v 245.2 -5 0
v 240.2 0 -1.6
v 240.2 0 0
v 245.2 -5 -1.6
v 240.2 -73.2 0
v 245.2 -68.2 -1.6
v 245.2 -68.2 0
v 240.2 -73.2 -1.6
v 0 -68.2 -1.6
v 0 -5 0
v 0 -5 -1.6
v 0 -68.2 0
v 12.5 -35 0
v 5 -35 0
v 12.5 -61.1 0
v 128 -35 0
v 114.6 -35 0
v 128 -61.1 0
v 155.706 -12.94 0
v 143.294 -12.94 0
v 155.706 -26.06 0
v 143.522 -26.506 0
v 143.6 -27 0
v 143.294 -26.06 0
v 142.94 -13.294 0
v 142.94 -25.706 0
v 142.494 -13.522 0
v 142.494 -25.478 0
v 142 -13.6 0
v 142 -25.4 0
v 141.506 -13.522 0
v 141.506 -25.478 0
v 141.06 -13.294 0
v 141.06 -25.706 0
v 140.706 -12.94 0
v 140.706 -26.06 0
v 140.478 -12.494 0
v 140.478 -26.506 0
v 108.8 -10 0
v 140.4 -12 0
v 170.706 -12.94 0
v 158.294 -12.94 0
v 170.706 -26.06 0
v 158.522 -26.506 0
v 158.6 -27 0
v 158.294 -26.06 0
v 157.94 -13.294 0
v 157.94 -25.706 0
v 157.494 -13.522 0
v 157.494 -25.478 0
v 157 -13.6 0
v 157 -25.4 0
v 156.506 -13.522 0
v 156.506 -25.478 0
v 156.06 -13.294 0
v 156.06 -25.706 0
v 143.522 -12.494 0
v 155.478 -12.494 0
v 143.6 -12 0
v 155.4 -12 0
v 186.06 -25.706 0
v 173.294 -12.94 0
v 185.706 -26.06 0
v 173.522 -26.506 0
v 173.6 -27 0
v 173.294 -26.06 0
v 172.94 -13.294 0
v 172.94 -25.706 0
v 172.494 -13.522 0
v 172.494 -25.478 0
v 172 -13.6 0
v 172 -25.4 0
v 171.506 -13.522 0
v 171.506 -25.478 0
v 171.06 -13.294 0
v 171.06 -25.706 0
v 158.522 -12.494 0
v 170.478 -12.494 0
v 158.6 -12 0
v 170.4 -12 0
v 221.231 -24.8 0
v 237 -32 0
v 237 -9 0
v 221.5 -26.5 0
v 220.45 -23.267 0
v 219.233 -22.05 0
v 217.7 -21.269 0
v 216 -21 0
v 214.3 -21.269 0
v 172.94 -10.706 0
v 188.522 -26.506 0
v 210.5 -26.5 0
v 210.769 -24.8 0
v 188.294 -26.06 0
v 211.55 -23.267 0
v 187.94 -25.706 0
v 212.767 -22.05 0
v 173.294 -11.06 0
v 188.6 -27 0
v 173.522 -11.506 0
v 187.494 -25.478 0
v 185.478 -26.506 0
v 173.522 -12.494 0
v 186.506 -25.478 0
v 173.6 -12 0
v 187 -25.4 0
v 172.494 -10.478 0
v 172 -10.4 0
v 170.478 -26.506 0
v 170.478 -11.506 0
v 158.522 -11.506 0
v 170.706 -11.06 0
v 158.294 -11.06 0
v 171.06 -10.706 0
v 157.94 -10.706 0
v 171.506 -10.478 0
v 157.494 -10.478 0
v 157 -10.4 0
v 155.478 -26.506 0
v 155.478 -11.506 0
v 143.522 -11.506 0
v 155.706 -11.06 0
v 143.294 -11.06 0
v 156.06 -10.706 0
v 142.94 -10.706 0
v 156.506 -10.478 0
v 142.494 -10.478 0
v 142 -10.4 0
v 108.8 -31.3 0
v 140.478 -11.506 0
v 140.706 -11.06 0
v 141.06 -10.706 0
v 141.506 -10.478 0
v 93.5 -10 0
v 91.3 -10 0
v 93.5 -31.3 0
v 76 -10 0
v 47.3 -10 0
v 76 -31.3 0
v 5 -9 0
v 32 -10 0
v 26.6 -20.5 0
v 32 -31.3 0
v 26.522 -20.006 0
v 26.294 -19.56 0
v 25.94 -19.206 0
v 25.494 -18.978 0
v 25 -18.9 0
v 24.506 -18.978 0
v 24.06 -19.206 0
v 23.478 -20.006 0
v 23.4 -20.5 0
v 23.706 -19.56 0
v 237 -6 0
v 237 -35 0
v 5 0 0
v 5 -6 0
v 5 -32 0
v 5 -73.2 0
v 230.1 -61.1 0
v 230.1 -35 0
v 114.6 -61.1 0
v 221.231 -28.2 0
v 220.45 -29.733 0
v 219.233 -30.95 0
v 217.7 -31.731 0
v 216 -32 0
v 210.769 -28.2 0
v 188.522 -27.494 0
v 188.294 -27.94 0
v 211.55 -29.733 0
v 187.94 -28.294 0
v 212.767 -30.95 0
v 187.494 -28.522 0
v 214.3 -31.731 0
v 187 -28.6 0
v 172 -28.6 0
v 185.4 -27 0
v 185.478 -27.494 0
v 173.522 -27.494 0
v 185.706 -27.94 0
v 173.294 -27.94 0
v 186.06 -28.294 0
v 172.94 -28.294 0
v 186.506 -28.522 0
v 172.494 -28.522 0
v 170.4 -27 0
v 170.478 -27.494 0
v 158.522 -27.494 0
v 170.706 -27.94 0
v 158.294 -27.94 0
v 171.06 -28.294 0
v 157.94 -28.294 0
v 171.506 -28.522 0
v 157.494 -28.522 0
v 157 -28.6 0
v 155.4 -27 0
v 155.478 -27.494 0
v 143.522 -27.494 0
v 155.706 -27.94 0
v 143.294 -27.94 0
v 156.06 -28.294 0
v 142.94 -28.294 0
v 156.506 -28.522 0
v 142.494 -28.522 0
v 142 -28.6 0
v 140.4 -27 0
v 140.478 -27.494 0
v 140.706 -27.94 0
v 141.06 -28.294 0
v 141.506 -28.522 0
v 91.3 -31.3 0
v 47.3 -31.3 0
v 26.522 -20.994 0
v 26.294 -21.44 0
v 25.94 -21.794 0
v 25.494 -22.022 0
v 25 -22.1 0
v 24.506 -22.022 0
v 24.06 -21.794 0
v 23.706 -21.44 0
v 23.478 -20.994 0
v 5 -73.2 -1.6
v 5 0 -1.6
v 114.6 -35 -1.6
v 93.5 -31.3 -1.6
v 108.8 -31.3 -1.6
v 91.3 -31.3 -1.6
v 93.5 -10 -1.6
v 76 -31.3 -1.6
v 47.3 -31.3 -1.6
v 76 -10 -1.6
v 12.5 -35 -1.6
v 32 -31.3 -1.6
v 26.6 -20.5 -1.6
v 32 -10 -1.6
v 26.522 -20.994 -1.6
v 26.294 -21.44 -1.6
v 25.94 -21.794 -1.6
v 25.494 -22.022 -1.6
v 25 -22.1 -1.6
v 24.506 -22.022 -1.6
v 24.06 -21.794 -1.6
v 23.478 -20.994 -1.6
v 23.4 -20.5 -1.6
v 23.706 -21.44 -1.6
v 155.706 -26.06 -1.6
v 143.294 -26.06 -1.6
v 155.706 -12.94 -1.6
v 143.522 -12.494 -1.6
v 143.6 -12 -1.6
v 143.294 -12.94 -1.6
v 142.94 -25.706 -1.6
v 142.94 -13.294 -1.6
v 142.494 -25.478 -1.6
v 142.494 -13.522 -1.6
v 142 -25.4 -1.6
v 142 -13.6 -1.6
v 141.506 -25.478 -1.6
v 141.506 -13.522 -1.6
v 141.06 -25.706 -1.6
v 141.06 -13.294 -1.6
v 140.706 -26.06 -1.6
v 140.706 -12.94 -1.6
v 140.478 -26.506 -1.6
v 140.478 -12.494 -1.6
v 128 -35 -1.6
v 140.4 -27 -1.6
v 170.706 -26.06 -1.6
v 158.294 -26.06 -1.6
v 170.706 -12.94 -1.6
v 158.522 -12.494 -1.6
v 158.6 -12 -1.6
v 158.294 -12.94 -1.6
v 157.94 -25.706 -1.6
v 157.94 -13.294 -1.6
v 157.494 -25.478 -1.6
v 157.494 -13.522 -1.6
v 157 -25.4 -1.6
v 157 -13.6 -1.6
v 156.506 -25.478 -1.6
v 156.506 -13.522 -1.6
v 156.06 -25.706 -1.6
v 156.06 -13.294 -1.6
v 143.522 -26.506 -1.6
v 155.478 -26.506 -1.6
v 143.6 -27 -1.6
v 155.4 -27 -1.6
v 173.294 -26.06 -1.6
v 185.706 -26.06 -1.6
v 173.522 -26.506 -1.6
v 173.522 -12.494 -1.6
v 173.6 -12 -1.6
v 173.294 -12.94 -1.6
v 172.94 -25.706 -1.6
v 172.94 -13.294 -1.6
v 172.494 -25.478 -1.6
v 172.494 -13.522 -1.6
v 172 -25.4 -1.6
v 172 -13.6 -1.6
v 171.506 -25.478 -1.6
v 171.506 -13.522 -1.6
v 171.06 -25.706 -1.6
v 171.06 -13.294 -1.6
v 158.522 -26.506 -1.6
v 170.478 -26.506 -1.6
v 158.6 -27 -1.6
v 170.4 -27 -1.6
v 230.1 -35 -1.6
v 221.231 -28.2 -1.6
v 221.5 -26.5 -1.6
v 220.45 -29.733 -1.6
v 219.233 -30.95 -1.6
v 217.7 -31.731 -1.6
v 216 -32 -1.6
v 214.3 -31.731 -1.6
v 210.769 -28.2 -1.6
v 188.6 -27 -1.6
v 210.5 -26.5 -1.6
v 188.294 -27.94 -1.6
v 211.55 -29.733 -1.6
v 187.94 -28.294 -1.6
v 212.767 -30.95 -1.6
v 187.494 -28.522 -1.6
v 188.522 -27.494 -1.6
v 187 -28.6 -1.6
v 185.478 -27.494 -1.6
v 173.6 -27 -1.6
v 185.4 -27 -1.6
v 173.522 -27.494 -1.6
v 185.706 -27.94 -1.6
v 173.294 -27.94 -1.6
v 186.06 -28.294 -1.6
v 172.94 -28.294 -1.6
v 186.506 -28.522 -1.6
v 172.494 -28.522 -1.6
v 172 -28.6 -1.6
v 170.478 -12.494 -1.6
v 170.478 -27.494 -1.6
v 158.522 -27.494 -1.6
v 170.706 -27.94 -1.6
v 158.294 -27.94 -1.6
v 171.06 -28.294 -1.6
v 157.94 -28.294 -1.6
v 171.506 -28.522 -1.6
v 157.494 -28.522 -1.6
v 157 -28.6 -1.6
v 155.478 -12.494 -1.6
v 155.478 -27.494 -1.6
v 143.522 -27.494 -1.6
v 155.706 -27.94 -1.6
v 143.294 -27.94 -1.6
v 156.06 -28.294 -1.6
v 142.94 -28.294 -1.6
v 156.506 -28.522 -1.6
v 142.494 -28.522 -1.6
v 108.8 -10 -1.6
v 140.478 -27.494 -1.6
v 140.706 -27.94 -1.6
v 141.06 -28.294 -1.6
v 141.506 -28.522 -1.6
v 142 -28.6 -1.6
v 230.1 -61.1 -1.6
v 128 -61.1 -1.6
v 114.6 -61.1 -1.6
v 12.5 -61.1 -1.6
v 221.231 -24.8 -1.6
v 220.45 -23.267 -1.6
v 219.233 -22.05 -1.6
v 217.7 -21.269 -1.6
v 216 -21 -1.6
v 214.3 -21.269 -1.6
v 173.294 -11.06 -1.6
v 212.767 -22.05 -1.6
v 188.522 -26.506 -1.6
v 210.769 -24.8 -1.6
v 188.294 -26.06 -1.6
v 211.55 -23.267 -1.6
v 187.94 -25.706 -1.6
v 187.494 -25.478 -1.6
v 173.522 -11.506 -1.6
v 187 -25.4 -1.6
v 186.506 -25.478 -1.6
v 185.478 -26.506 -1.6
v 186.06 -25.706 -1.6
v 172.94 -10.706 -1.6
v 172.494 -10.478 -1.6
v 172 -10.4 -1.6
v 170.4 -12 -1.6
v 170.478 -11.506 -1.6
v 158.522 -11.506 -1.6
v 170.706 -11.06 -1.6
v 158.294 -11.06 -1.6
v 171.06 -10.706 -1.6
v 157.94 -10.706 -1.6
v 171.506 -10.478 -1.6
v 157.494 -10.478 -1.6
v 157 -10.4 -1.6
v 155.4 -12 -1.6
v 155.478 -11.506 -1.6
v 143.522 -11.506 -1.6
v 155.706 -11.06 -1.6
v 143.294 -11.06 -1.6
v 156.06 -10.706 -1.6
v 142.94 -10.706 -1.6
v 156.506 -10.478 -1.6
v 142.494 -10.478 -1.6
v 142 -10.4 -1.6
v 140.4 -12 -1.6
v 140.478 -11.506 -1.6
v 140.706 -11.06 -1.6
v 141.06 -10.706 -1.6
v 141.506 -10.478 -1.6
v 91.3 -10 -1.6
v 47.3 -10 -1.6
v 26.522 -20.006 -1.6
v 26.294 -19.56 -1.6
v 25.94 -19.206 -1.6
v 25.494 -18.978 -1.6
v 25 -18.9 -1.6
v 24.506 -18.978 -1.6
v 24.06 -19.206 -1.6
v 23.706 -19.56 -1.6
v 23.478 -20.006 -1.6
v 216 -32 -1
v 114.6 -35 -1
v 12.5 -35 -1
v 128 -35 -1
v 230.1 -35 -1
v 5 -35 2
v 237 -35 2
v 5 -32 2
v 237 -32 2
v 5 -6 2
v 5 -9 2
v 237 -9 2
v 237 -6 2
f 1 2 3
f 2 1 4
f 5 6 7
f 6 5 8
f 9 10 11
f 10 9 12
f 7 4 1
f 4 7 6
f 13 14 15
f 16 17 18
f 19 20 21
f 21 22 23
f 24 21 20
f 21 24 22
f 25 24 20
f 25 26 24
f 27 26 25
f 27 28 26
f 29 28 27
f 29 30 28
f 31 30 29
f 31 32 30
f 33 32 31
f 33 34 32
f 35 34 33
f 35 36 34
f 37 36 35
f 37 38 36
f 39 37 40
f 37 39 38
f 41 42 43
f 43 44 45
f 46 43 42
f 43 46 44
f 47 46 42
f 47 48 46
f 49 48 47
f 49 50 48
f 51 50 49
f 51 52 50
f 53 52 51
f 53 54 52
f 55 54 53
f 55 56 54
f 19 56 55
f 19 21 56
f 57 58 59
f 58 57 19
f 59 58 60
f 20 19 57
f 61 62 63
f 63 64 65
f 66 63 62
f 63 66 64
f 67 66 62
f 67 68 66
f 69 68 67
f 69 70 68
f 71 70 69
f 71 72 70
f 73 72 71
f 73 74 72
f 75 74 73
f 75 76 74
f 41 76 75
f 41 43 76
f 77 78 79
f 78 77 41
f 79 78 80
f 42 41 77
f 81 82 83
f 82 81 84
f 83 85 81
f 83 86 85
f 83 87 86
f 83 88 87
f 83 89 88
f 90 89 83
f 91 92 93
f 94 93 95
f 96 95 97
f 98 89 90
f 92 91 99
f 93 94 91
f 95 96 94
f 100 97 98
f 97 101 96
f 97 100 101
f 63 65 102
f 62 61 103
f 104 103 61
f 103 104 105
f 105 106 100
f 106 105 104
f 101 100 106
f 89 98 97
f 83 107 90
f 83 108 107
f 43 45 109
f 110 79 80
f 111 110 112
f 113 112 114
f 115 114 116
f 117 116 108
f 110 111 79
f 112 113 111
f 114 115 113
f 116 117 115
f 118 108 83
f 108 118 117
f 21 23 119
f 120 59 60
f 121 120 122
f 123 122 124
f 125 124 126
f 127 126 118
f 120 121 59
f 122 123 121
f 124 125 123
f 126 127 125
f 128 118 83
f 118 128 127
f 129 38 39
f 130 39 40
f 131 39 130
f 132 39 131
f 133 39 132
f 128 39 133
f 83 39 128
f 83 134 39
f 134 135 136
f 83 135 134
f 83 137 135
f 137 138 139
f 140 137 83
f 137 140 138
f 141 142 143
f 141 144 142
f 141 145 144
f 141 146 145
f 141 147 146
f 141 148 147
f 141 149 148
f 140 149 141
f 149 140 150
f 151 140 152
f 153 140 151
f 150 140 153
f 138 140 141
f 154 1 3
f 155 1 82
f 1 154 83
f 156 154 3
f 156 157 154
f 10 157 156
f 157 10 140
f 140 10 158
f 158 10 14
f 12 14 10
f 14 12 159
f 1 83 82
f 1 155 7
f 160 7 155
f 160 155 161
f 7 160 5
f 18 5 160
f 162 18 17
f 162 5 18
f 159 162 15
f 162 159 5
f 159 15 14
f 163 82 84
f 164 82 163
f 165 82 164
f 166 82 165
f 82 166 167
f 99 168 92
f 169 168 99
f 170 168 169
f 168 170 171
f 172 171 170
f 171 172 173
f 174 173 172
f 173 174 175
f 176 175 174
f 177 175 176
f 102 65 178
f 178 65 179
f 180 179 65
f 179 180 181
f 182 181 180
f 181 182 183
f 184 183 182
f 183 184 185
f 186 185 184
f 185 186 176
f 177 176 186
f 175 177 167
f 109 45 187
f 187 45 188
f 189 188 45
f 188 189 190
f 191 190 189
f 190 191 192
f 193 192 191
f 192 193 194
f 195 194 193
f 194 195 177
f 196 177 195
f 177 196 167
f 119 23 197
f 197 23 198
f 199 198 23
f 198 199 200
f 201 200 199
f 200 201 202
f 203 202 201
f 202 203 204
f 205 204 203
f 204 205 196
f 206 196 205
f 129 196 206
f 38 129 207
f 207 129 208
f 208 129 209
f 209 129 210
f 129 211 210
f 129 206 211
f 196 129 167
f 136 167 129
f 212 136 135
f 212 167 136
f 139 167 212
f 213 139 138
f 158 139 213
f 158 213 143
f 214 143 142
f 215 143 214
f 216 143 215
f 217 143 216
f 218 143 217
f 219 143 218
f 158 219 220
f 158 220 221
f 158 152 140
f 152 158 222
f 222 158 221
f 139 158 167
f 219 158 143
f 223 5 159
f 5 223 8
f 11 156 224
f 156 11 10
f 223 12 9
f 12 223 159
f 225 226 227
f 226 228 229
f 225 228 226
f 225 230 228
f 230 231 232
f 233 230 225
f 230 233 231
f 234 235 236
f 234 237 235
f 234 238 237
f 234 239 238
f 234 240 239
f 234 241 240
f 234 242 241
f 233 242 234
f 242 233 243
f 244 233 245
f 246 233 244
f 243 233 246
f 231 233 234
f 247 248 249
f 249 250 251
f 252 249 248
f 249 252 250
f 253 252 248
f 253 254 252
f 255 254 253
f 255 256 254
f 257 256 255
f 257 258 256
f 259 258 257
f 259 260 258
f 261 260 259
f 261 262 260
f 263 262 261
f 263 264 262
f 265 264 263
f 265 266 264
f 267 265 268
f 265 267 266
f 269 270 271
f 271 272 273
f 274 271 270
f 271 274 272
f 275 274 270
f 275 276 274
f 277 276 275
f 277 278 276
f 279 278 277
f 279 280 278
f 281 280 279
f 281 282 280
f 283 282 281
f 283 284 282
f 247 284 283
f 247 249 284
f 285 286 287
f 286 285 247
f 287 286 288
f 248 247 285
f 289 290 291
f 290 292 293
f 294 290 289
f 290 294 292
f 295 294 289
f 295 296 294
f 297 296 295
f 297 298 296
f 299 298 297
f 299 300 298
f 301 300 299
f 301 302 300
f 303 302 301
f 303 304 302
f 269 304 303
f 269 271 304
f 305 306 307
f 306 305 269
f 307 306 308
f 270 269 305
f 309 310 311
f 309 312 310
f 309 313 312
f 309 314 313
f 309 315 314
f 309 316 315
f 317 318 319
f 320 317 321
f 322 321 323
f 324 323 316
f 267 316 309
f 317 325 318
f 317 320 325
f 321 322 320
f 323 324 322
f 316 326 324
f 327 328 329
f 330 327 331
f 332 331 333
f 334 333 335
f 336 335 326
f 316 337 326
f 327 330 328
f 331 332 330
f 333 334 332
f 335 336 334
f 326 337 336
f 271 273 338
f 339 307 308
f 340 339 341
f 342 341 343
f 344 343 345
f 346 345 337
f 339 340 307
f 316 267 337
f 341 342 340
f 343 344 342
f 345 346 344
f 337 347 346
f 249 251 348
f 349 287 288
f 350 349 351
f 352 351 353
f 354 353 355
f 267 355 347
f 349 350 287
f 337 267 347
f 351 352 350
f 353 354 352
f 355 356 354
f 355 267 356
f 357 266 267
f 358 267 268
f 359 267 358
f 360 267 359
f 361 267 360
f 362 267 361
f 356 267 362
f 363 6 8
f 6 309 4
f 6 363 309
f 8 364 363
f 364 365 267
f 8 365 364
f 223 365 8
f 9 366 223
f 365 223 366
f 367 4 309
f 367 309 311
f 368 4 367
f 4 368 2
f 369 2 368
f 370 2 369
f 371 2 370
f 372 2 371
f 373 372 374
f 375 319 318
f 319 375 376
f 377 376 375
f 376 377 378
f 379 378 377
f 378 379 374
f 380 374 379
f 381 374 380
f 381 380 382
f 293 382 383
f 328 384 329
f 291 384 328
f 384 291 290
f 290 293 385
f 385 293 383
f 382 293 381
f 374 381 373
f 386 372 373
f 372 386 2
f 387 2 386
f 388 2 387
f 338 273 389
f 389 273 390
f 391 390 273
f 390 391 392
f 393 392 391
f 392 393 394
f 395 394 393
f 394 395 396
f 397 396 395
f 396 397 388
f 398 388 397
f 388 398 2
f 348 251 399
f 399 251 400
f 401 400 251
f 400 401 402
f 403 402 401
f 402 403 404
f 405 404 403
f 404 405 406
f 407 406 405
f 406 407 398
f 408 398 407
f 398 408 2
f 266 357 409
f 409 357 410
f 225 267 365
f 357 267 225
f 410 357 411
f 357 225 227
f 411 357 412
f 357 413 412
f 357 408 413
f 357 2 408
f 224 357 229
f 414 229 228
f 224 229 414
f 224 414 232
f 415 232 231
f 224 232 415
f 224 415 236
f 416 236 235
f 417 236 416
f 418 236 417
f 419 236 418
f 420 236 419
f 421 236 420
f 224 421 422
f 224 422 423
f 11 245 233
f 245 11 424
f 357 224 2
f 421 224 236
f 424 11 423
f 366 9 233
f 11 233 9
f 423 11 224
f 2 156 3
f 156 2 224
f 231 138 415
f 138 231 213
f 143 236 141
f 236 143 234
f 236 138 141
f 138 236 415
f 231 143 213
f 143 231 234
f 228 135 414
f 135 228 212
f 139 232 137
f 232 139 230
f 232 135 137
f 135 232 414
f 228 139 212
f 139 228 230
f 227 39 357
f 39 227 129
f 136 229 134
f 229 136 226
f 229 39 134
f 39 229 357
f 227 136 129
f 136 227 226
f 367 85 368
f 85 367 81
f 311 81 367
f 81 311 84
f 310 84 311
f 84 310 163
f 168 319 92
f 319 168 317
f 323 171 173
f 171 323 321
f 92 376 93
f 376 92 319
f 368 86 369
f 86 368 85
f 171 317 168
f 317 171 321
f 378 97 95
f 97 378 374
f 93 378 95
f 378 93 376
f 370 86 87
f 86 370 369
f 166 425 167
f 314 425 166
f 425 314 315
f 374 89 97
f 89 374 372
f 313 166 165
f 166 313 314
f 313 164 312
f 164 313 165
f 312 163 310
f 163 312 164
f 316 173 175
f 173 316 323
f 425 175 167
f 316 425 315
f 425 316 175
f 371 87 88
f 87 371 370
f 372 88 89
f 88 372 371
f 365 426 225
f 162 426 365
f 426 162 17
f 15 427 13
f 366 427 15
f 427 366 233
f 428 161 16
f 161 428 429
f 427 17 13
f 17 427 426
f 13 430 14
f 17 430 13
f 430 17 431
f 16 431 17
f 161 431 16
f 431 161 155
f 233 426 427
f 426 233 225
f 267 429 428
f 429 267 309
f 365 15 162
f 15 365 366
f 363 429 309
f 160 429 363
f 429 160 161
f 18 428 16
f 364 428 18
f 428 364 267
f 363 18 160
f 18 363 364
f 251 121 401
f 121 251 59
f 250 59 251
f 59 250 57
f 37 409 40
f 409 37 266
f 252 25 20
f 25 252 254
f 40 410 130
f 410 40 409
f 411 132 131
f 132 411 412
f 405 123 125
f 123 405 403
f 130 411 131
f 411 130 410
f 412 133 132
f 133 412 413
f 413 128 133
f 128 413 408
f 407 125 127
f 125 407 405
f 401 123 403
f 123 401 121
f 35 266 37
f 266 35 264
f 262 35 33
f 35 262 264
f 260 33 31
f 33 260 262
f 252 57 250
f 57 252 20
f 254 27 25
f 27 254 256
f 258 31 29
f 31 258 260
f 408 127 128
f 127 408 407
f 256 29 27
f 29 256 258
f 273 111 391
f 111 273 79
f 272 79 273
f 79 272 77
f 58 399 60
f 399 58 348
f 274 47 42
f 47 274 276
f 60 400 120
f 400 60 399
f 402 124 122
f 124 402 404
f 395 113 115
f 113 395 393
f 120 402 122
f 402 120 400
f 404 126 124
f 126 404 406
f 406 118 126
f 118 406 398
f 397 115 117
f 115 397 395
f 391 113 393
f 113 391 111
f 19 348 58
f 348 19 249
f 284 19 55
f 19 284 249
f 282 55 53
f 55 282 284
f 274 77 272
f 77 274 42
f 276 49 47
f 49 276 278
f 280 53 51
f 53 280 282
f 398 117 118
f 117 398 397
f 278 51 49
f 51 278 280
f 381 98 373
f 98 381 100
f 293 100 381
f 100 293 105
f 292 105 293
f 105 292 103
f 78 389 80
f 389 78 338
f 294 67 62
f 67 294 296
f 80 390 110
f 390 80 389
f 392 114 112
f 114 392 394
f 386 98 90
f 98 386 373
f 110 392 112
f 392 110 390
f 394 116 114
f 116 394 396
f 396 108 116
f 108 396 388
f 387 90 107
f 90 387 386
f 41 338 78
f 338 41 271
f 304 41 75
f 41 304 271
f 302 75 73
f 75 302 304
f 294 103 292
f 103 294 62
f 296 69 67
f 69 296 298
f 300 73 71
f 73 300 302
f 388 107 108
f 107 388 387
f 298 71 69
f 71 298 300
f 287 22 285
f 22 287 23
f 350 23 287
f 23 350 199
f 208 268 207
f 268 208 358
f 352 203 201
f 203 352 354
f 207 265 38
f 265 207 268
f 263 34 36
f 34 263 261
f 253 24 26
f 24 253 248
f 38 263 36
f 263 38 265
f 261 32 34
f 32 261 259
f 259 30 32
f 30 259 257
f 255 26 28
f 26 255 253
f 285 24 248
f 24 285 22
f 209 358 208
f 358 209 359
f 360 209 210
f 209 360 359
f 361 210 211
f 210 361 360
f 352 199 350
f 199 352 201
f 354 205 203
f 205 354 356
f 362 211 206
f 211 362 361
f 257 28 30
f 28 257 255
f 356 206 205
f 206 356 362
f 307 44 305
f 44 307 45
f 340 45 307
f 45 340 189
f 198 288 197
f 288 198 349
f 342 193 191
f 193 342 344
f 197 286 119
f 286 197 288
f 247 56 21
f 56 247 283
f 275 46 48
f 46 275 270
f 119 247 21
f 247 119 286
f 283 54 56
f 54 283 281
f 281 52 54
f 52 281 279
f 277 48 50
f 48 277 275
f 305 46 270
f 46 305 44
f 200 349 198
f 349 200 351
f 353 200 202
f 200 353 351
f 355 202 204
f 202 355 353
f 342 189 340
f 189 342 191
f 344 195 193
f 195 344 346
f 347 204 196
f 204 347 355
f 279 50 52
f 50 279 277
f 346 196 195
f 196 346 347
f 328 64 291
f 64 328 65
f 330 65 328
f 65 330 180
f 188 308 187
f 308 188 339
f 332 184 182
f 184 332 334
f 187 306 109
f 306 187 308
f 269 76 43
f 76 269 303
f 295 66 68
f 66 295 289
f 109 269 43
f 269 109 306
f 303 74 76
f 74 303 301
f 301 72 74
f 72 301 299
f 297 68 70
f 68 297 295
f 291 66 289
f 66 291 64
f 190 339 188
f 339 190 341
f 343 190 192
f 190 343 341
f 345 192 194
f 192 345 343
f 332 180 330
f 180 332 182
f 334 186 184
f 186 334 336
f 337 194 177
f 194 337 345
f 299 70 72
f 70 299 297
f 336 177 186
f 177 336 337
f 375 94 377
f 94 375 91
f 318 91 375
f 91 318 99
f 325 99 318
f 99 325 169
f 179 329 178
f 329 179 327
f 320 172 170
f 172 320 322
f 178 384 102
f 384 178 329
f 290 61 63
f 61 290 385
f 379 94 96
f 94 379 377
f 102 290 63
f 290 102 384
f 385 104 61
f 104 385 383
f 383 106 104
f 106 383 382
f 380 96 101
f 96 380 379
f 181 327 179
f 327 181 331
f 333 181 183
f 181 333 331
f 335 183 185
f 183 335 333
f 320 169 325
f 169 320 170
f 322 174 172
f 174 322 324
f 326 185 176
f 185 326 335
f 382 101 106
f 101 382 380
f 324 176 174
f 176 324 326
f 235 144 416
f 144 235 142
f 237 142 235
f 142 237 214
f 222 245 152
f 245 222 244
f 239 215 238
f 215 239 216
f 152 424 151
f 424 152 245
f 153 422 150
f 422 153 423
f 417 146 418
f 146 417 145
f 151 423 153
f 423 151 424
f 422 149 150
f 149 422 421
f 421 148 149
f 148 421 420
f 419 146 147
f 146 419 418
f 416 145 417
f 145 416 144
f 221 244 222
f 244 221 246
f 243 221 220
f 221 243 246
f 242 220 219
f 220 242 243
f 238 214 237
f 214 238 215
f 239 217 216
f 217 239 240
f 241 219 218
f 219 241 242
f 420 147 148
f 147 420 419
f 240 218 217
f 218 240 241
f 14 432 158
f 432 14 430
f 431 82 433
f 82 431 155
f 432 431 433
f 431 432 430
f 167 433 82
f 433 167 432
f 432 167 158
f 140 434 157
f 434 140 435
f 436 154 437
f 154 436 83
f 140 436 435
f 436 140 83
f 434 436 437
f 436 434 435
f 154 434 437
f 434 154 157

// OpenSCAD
$fn = 20;

thick = 2;
tf = 1.2;

xmax = 250;
ymax = 180+thick;
zmax = 39*2;

ledx = 142;
ledy = 12;

edge=5;

rotate([180,0,0]) {
    shape();
}

//translate([0, 0, -1.8])
//beschriftung();

module shape() {
    
    echo("Floppy start:", 14);
    echo("Switch start:", 32);
    echo("Switch start:", 75);
    echo("Switch start:", 94);
    
    difference(){
        base_shape();
        
        translate([32, 10, 0])
            switch();
        translate([76, 10, 0])
            switch();
        translate([93.5, 10, 0])
            switch();
        
        translate([216, 26.5, 0])
            reset();
        
        translate([12.5, 35, 0])
            floppy();
        translate([128, 35, 0])
            floppy();

        translate([ledx, ledy, 0])
            led3();
        translate([ledx+15, ledy, 0])
            led3();
        translate([ledx+2*15, ledy, 0])
            led3();
            
        translate([ledx, ledy+15, 0])
            led3();
        translate([ledx+15, ledy+15, 0])
            led3();
        translate([ledx+2*15, ledy+15, 0])
            led3();
        translate([ledx+3*15, ledy+15, 0])
            led3();
        
        translate([25, 10+10.5, 0])
            led3();
    }
    
//    translate([edge, zmax-4*thick-edge, -thick])
//        cube([xmax-2*edge-4*thick, 3, 3]);

    translate([edge, 32, -thick])
        cube([xmax-2*edge-4*thick, 3, 3]);

    translate([edge, 6, -thick])
        cube([xmax-2*edge-4*thick, 3, 3]);

}

module led3() {
    linear_extrude(thick)
        circle(1.6); 
}

module led5() {
    linear_extrude(thick)
        circle(2.6); 
}

module floppy() {
    linear_extrude(thick)
        square([102 + 0.1, 26 + 0.1]);
}

module reset() {
    linear_extrude(thick)
        circle(5.5); 
}

module switch() {
    linear_extrude(thick)
        square([15 + 0.3, 21 + 0.3]);
}

module base_shape() {
    
    rotate([0,0,0])
    linear_extrude(1.6)
        base_shape_2d(thick * tf);

}

module base_shape_2d(th) {
    
    echo("width:", xmax-2*th);
    echo("height:", zmax-2*th);
    
    polygon([[0, zmax-edge-2*th], [0, edge], [edge,0], [xmax-edge-2*th, 0], [xmax-2*th, edge], [xmax-2*th, zmax-edge-2*th],[xmax-edge-2*th, zmax-2*th], [edge, zmax-2*th]  ]);
}

module beschriftung() {
    
    translate([49,-29.5, 0])
    cube([25, 0.6, 1]);
    translate([49,-11.75, 0])
    cube([25, 0.6, 1]);
    
    linear_extrude(0.2){
    translate([127, -25.5, -2 ])
    rotate([180, 0, 0])
    {
        text("Drive        A           B           C          D ", 3
    , "Arial:style=Bold"  );
    }
    
    translate([145, -10.5, -2 ])
    rotate([180, 0, 0])
    {
        text("DD        FM        Side B", 3
    , "Arial:style=Bold"  );
    }

    translate([210, -16, -2 ])
    rotate([180, 0, 0])
    {
        text("Reset", 3
    , "Arial:style=Bold"  );
    }
    
    translate([22, -28, -2 ])
    rotate([180, 0, 0])
    {
        text("ON -", 3
    , "Arial:style=Bold"  );
    }

    translate([22.25, -10.5, -2 ])
    rotate([180, 0, 0])
    {
        text("Off -", 3
    , "Arial:style=Bold"  );
    }
    
    translate([33, -5, -2 ])
    rotate([180, 0, 0])
    {
        text("Power                                 A             B", 3
    , "Arial:style=Bold"  );
    }
}
}
